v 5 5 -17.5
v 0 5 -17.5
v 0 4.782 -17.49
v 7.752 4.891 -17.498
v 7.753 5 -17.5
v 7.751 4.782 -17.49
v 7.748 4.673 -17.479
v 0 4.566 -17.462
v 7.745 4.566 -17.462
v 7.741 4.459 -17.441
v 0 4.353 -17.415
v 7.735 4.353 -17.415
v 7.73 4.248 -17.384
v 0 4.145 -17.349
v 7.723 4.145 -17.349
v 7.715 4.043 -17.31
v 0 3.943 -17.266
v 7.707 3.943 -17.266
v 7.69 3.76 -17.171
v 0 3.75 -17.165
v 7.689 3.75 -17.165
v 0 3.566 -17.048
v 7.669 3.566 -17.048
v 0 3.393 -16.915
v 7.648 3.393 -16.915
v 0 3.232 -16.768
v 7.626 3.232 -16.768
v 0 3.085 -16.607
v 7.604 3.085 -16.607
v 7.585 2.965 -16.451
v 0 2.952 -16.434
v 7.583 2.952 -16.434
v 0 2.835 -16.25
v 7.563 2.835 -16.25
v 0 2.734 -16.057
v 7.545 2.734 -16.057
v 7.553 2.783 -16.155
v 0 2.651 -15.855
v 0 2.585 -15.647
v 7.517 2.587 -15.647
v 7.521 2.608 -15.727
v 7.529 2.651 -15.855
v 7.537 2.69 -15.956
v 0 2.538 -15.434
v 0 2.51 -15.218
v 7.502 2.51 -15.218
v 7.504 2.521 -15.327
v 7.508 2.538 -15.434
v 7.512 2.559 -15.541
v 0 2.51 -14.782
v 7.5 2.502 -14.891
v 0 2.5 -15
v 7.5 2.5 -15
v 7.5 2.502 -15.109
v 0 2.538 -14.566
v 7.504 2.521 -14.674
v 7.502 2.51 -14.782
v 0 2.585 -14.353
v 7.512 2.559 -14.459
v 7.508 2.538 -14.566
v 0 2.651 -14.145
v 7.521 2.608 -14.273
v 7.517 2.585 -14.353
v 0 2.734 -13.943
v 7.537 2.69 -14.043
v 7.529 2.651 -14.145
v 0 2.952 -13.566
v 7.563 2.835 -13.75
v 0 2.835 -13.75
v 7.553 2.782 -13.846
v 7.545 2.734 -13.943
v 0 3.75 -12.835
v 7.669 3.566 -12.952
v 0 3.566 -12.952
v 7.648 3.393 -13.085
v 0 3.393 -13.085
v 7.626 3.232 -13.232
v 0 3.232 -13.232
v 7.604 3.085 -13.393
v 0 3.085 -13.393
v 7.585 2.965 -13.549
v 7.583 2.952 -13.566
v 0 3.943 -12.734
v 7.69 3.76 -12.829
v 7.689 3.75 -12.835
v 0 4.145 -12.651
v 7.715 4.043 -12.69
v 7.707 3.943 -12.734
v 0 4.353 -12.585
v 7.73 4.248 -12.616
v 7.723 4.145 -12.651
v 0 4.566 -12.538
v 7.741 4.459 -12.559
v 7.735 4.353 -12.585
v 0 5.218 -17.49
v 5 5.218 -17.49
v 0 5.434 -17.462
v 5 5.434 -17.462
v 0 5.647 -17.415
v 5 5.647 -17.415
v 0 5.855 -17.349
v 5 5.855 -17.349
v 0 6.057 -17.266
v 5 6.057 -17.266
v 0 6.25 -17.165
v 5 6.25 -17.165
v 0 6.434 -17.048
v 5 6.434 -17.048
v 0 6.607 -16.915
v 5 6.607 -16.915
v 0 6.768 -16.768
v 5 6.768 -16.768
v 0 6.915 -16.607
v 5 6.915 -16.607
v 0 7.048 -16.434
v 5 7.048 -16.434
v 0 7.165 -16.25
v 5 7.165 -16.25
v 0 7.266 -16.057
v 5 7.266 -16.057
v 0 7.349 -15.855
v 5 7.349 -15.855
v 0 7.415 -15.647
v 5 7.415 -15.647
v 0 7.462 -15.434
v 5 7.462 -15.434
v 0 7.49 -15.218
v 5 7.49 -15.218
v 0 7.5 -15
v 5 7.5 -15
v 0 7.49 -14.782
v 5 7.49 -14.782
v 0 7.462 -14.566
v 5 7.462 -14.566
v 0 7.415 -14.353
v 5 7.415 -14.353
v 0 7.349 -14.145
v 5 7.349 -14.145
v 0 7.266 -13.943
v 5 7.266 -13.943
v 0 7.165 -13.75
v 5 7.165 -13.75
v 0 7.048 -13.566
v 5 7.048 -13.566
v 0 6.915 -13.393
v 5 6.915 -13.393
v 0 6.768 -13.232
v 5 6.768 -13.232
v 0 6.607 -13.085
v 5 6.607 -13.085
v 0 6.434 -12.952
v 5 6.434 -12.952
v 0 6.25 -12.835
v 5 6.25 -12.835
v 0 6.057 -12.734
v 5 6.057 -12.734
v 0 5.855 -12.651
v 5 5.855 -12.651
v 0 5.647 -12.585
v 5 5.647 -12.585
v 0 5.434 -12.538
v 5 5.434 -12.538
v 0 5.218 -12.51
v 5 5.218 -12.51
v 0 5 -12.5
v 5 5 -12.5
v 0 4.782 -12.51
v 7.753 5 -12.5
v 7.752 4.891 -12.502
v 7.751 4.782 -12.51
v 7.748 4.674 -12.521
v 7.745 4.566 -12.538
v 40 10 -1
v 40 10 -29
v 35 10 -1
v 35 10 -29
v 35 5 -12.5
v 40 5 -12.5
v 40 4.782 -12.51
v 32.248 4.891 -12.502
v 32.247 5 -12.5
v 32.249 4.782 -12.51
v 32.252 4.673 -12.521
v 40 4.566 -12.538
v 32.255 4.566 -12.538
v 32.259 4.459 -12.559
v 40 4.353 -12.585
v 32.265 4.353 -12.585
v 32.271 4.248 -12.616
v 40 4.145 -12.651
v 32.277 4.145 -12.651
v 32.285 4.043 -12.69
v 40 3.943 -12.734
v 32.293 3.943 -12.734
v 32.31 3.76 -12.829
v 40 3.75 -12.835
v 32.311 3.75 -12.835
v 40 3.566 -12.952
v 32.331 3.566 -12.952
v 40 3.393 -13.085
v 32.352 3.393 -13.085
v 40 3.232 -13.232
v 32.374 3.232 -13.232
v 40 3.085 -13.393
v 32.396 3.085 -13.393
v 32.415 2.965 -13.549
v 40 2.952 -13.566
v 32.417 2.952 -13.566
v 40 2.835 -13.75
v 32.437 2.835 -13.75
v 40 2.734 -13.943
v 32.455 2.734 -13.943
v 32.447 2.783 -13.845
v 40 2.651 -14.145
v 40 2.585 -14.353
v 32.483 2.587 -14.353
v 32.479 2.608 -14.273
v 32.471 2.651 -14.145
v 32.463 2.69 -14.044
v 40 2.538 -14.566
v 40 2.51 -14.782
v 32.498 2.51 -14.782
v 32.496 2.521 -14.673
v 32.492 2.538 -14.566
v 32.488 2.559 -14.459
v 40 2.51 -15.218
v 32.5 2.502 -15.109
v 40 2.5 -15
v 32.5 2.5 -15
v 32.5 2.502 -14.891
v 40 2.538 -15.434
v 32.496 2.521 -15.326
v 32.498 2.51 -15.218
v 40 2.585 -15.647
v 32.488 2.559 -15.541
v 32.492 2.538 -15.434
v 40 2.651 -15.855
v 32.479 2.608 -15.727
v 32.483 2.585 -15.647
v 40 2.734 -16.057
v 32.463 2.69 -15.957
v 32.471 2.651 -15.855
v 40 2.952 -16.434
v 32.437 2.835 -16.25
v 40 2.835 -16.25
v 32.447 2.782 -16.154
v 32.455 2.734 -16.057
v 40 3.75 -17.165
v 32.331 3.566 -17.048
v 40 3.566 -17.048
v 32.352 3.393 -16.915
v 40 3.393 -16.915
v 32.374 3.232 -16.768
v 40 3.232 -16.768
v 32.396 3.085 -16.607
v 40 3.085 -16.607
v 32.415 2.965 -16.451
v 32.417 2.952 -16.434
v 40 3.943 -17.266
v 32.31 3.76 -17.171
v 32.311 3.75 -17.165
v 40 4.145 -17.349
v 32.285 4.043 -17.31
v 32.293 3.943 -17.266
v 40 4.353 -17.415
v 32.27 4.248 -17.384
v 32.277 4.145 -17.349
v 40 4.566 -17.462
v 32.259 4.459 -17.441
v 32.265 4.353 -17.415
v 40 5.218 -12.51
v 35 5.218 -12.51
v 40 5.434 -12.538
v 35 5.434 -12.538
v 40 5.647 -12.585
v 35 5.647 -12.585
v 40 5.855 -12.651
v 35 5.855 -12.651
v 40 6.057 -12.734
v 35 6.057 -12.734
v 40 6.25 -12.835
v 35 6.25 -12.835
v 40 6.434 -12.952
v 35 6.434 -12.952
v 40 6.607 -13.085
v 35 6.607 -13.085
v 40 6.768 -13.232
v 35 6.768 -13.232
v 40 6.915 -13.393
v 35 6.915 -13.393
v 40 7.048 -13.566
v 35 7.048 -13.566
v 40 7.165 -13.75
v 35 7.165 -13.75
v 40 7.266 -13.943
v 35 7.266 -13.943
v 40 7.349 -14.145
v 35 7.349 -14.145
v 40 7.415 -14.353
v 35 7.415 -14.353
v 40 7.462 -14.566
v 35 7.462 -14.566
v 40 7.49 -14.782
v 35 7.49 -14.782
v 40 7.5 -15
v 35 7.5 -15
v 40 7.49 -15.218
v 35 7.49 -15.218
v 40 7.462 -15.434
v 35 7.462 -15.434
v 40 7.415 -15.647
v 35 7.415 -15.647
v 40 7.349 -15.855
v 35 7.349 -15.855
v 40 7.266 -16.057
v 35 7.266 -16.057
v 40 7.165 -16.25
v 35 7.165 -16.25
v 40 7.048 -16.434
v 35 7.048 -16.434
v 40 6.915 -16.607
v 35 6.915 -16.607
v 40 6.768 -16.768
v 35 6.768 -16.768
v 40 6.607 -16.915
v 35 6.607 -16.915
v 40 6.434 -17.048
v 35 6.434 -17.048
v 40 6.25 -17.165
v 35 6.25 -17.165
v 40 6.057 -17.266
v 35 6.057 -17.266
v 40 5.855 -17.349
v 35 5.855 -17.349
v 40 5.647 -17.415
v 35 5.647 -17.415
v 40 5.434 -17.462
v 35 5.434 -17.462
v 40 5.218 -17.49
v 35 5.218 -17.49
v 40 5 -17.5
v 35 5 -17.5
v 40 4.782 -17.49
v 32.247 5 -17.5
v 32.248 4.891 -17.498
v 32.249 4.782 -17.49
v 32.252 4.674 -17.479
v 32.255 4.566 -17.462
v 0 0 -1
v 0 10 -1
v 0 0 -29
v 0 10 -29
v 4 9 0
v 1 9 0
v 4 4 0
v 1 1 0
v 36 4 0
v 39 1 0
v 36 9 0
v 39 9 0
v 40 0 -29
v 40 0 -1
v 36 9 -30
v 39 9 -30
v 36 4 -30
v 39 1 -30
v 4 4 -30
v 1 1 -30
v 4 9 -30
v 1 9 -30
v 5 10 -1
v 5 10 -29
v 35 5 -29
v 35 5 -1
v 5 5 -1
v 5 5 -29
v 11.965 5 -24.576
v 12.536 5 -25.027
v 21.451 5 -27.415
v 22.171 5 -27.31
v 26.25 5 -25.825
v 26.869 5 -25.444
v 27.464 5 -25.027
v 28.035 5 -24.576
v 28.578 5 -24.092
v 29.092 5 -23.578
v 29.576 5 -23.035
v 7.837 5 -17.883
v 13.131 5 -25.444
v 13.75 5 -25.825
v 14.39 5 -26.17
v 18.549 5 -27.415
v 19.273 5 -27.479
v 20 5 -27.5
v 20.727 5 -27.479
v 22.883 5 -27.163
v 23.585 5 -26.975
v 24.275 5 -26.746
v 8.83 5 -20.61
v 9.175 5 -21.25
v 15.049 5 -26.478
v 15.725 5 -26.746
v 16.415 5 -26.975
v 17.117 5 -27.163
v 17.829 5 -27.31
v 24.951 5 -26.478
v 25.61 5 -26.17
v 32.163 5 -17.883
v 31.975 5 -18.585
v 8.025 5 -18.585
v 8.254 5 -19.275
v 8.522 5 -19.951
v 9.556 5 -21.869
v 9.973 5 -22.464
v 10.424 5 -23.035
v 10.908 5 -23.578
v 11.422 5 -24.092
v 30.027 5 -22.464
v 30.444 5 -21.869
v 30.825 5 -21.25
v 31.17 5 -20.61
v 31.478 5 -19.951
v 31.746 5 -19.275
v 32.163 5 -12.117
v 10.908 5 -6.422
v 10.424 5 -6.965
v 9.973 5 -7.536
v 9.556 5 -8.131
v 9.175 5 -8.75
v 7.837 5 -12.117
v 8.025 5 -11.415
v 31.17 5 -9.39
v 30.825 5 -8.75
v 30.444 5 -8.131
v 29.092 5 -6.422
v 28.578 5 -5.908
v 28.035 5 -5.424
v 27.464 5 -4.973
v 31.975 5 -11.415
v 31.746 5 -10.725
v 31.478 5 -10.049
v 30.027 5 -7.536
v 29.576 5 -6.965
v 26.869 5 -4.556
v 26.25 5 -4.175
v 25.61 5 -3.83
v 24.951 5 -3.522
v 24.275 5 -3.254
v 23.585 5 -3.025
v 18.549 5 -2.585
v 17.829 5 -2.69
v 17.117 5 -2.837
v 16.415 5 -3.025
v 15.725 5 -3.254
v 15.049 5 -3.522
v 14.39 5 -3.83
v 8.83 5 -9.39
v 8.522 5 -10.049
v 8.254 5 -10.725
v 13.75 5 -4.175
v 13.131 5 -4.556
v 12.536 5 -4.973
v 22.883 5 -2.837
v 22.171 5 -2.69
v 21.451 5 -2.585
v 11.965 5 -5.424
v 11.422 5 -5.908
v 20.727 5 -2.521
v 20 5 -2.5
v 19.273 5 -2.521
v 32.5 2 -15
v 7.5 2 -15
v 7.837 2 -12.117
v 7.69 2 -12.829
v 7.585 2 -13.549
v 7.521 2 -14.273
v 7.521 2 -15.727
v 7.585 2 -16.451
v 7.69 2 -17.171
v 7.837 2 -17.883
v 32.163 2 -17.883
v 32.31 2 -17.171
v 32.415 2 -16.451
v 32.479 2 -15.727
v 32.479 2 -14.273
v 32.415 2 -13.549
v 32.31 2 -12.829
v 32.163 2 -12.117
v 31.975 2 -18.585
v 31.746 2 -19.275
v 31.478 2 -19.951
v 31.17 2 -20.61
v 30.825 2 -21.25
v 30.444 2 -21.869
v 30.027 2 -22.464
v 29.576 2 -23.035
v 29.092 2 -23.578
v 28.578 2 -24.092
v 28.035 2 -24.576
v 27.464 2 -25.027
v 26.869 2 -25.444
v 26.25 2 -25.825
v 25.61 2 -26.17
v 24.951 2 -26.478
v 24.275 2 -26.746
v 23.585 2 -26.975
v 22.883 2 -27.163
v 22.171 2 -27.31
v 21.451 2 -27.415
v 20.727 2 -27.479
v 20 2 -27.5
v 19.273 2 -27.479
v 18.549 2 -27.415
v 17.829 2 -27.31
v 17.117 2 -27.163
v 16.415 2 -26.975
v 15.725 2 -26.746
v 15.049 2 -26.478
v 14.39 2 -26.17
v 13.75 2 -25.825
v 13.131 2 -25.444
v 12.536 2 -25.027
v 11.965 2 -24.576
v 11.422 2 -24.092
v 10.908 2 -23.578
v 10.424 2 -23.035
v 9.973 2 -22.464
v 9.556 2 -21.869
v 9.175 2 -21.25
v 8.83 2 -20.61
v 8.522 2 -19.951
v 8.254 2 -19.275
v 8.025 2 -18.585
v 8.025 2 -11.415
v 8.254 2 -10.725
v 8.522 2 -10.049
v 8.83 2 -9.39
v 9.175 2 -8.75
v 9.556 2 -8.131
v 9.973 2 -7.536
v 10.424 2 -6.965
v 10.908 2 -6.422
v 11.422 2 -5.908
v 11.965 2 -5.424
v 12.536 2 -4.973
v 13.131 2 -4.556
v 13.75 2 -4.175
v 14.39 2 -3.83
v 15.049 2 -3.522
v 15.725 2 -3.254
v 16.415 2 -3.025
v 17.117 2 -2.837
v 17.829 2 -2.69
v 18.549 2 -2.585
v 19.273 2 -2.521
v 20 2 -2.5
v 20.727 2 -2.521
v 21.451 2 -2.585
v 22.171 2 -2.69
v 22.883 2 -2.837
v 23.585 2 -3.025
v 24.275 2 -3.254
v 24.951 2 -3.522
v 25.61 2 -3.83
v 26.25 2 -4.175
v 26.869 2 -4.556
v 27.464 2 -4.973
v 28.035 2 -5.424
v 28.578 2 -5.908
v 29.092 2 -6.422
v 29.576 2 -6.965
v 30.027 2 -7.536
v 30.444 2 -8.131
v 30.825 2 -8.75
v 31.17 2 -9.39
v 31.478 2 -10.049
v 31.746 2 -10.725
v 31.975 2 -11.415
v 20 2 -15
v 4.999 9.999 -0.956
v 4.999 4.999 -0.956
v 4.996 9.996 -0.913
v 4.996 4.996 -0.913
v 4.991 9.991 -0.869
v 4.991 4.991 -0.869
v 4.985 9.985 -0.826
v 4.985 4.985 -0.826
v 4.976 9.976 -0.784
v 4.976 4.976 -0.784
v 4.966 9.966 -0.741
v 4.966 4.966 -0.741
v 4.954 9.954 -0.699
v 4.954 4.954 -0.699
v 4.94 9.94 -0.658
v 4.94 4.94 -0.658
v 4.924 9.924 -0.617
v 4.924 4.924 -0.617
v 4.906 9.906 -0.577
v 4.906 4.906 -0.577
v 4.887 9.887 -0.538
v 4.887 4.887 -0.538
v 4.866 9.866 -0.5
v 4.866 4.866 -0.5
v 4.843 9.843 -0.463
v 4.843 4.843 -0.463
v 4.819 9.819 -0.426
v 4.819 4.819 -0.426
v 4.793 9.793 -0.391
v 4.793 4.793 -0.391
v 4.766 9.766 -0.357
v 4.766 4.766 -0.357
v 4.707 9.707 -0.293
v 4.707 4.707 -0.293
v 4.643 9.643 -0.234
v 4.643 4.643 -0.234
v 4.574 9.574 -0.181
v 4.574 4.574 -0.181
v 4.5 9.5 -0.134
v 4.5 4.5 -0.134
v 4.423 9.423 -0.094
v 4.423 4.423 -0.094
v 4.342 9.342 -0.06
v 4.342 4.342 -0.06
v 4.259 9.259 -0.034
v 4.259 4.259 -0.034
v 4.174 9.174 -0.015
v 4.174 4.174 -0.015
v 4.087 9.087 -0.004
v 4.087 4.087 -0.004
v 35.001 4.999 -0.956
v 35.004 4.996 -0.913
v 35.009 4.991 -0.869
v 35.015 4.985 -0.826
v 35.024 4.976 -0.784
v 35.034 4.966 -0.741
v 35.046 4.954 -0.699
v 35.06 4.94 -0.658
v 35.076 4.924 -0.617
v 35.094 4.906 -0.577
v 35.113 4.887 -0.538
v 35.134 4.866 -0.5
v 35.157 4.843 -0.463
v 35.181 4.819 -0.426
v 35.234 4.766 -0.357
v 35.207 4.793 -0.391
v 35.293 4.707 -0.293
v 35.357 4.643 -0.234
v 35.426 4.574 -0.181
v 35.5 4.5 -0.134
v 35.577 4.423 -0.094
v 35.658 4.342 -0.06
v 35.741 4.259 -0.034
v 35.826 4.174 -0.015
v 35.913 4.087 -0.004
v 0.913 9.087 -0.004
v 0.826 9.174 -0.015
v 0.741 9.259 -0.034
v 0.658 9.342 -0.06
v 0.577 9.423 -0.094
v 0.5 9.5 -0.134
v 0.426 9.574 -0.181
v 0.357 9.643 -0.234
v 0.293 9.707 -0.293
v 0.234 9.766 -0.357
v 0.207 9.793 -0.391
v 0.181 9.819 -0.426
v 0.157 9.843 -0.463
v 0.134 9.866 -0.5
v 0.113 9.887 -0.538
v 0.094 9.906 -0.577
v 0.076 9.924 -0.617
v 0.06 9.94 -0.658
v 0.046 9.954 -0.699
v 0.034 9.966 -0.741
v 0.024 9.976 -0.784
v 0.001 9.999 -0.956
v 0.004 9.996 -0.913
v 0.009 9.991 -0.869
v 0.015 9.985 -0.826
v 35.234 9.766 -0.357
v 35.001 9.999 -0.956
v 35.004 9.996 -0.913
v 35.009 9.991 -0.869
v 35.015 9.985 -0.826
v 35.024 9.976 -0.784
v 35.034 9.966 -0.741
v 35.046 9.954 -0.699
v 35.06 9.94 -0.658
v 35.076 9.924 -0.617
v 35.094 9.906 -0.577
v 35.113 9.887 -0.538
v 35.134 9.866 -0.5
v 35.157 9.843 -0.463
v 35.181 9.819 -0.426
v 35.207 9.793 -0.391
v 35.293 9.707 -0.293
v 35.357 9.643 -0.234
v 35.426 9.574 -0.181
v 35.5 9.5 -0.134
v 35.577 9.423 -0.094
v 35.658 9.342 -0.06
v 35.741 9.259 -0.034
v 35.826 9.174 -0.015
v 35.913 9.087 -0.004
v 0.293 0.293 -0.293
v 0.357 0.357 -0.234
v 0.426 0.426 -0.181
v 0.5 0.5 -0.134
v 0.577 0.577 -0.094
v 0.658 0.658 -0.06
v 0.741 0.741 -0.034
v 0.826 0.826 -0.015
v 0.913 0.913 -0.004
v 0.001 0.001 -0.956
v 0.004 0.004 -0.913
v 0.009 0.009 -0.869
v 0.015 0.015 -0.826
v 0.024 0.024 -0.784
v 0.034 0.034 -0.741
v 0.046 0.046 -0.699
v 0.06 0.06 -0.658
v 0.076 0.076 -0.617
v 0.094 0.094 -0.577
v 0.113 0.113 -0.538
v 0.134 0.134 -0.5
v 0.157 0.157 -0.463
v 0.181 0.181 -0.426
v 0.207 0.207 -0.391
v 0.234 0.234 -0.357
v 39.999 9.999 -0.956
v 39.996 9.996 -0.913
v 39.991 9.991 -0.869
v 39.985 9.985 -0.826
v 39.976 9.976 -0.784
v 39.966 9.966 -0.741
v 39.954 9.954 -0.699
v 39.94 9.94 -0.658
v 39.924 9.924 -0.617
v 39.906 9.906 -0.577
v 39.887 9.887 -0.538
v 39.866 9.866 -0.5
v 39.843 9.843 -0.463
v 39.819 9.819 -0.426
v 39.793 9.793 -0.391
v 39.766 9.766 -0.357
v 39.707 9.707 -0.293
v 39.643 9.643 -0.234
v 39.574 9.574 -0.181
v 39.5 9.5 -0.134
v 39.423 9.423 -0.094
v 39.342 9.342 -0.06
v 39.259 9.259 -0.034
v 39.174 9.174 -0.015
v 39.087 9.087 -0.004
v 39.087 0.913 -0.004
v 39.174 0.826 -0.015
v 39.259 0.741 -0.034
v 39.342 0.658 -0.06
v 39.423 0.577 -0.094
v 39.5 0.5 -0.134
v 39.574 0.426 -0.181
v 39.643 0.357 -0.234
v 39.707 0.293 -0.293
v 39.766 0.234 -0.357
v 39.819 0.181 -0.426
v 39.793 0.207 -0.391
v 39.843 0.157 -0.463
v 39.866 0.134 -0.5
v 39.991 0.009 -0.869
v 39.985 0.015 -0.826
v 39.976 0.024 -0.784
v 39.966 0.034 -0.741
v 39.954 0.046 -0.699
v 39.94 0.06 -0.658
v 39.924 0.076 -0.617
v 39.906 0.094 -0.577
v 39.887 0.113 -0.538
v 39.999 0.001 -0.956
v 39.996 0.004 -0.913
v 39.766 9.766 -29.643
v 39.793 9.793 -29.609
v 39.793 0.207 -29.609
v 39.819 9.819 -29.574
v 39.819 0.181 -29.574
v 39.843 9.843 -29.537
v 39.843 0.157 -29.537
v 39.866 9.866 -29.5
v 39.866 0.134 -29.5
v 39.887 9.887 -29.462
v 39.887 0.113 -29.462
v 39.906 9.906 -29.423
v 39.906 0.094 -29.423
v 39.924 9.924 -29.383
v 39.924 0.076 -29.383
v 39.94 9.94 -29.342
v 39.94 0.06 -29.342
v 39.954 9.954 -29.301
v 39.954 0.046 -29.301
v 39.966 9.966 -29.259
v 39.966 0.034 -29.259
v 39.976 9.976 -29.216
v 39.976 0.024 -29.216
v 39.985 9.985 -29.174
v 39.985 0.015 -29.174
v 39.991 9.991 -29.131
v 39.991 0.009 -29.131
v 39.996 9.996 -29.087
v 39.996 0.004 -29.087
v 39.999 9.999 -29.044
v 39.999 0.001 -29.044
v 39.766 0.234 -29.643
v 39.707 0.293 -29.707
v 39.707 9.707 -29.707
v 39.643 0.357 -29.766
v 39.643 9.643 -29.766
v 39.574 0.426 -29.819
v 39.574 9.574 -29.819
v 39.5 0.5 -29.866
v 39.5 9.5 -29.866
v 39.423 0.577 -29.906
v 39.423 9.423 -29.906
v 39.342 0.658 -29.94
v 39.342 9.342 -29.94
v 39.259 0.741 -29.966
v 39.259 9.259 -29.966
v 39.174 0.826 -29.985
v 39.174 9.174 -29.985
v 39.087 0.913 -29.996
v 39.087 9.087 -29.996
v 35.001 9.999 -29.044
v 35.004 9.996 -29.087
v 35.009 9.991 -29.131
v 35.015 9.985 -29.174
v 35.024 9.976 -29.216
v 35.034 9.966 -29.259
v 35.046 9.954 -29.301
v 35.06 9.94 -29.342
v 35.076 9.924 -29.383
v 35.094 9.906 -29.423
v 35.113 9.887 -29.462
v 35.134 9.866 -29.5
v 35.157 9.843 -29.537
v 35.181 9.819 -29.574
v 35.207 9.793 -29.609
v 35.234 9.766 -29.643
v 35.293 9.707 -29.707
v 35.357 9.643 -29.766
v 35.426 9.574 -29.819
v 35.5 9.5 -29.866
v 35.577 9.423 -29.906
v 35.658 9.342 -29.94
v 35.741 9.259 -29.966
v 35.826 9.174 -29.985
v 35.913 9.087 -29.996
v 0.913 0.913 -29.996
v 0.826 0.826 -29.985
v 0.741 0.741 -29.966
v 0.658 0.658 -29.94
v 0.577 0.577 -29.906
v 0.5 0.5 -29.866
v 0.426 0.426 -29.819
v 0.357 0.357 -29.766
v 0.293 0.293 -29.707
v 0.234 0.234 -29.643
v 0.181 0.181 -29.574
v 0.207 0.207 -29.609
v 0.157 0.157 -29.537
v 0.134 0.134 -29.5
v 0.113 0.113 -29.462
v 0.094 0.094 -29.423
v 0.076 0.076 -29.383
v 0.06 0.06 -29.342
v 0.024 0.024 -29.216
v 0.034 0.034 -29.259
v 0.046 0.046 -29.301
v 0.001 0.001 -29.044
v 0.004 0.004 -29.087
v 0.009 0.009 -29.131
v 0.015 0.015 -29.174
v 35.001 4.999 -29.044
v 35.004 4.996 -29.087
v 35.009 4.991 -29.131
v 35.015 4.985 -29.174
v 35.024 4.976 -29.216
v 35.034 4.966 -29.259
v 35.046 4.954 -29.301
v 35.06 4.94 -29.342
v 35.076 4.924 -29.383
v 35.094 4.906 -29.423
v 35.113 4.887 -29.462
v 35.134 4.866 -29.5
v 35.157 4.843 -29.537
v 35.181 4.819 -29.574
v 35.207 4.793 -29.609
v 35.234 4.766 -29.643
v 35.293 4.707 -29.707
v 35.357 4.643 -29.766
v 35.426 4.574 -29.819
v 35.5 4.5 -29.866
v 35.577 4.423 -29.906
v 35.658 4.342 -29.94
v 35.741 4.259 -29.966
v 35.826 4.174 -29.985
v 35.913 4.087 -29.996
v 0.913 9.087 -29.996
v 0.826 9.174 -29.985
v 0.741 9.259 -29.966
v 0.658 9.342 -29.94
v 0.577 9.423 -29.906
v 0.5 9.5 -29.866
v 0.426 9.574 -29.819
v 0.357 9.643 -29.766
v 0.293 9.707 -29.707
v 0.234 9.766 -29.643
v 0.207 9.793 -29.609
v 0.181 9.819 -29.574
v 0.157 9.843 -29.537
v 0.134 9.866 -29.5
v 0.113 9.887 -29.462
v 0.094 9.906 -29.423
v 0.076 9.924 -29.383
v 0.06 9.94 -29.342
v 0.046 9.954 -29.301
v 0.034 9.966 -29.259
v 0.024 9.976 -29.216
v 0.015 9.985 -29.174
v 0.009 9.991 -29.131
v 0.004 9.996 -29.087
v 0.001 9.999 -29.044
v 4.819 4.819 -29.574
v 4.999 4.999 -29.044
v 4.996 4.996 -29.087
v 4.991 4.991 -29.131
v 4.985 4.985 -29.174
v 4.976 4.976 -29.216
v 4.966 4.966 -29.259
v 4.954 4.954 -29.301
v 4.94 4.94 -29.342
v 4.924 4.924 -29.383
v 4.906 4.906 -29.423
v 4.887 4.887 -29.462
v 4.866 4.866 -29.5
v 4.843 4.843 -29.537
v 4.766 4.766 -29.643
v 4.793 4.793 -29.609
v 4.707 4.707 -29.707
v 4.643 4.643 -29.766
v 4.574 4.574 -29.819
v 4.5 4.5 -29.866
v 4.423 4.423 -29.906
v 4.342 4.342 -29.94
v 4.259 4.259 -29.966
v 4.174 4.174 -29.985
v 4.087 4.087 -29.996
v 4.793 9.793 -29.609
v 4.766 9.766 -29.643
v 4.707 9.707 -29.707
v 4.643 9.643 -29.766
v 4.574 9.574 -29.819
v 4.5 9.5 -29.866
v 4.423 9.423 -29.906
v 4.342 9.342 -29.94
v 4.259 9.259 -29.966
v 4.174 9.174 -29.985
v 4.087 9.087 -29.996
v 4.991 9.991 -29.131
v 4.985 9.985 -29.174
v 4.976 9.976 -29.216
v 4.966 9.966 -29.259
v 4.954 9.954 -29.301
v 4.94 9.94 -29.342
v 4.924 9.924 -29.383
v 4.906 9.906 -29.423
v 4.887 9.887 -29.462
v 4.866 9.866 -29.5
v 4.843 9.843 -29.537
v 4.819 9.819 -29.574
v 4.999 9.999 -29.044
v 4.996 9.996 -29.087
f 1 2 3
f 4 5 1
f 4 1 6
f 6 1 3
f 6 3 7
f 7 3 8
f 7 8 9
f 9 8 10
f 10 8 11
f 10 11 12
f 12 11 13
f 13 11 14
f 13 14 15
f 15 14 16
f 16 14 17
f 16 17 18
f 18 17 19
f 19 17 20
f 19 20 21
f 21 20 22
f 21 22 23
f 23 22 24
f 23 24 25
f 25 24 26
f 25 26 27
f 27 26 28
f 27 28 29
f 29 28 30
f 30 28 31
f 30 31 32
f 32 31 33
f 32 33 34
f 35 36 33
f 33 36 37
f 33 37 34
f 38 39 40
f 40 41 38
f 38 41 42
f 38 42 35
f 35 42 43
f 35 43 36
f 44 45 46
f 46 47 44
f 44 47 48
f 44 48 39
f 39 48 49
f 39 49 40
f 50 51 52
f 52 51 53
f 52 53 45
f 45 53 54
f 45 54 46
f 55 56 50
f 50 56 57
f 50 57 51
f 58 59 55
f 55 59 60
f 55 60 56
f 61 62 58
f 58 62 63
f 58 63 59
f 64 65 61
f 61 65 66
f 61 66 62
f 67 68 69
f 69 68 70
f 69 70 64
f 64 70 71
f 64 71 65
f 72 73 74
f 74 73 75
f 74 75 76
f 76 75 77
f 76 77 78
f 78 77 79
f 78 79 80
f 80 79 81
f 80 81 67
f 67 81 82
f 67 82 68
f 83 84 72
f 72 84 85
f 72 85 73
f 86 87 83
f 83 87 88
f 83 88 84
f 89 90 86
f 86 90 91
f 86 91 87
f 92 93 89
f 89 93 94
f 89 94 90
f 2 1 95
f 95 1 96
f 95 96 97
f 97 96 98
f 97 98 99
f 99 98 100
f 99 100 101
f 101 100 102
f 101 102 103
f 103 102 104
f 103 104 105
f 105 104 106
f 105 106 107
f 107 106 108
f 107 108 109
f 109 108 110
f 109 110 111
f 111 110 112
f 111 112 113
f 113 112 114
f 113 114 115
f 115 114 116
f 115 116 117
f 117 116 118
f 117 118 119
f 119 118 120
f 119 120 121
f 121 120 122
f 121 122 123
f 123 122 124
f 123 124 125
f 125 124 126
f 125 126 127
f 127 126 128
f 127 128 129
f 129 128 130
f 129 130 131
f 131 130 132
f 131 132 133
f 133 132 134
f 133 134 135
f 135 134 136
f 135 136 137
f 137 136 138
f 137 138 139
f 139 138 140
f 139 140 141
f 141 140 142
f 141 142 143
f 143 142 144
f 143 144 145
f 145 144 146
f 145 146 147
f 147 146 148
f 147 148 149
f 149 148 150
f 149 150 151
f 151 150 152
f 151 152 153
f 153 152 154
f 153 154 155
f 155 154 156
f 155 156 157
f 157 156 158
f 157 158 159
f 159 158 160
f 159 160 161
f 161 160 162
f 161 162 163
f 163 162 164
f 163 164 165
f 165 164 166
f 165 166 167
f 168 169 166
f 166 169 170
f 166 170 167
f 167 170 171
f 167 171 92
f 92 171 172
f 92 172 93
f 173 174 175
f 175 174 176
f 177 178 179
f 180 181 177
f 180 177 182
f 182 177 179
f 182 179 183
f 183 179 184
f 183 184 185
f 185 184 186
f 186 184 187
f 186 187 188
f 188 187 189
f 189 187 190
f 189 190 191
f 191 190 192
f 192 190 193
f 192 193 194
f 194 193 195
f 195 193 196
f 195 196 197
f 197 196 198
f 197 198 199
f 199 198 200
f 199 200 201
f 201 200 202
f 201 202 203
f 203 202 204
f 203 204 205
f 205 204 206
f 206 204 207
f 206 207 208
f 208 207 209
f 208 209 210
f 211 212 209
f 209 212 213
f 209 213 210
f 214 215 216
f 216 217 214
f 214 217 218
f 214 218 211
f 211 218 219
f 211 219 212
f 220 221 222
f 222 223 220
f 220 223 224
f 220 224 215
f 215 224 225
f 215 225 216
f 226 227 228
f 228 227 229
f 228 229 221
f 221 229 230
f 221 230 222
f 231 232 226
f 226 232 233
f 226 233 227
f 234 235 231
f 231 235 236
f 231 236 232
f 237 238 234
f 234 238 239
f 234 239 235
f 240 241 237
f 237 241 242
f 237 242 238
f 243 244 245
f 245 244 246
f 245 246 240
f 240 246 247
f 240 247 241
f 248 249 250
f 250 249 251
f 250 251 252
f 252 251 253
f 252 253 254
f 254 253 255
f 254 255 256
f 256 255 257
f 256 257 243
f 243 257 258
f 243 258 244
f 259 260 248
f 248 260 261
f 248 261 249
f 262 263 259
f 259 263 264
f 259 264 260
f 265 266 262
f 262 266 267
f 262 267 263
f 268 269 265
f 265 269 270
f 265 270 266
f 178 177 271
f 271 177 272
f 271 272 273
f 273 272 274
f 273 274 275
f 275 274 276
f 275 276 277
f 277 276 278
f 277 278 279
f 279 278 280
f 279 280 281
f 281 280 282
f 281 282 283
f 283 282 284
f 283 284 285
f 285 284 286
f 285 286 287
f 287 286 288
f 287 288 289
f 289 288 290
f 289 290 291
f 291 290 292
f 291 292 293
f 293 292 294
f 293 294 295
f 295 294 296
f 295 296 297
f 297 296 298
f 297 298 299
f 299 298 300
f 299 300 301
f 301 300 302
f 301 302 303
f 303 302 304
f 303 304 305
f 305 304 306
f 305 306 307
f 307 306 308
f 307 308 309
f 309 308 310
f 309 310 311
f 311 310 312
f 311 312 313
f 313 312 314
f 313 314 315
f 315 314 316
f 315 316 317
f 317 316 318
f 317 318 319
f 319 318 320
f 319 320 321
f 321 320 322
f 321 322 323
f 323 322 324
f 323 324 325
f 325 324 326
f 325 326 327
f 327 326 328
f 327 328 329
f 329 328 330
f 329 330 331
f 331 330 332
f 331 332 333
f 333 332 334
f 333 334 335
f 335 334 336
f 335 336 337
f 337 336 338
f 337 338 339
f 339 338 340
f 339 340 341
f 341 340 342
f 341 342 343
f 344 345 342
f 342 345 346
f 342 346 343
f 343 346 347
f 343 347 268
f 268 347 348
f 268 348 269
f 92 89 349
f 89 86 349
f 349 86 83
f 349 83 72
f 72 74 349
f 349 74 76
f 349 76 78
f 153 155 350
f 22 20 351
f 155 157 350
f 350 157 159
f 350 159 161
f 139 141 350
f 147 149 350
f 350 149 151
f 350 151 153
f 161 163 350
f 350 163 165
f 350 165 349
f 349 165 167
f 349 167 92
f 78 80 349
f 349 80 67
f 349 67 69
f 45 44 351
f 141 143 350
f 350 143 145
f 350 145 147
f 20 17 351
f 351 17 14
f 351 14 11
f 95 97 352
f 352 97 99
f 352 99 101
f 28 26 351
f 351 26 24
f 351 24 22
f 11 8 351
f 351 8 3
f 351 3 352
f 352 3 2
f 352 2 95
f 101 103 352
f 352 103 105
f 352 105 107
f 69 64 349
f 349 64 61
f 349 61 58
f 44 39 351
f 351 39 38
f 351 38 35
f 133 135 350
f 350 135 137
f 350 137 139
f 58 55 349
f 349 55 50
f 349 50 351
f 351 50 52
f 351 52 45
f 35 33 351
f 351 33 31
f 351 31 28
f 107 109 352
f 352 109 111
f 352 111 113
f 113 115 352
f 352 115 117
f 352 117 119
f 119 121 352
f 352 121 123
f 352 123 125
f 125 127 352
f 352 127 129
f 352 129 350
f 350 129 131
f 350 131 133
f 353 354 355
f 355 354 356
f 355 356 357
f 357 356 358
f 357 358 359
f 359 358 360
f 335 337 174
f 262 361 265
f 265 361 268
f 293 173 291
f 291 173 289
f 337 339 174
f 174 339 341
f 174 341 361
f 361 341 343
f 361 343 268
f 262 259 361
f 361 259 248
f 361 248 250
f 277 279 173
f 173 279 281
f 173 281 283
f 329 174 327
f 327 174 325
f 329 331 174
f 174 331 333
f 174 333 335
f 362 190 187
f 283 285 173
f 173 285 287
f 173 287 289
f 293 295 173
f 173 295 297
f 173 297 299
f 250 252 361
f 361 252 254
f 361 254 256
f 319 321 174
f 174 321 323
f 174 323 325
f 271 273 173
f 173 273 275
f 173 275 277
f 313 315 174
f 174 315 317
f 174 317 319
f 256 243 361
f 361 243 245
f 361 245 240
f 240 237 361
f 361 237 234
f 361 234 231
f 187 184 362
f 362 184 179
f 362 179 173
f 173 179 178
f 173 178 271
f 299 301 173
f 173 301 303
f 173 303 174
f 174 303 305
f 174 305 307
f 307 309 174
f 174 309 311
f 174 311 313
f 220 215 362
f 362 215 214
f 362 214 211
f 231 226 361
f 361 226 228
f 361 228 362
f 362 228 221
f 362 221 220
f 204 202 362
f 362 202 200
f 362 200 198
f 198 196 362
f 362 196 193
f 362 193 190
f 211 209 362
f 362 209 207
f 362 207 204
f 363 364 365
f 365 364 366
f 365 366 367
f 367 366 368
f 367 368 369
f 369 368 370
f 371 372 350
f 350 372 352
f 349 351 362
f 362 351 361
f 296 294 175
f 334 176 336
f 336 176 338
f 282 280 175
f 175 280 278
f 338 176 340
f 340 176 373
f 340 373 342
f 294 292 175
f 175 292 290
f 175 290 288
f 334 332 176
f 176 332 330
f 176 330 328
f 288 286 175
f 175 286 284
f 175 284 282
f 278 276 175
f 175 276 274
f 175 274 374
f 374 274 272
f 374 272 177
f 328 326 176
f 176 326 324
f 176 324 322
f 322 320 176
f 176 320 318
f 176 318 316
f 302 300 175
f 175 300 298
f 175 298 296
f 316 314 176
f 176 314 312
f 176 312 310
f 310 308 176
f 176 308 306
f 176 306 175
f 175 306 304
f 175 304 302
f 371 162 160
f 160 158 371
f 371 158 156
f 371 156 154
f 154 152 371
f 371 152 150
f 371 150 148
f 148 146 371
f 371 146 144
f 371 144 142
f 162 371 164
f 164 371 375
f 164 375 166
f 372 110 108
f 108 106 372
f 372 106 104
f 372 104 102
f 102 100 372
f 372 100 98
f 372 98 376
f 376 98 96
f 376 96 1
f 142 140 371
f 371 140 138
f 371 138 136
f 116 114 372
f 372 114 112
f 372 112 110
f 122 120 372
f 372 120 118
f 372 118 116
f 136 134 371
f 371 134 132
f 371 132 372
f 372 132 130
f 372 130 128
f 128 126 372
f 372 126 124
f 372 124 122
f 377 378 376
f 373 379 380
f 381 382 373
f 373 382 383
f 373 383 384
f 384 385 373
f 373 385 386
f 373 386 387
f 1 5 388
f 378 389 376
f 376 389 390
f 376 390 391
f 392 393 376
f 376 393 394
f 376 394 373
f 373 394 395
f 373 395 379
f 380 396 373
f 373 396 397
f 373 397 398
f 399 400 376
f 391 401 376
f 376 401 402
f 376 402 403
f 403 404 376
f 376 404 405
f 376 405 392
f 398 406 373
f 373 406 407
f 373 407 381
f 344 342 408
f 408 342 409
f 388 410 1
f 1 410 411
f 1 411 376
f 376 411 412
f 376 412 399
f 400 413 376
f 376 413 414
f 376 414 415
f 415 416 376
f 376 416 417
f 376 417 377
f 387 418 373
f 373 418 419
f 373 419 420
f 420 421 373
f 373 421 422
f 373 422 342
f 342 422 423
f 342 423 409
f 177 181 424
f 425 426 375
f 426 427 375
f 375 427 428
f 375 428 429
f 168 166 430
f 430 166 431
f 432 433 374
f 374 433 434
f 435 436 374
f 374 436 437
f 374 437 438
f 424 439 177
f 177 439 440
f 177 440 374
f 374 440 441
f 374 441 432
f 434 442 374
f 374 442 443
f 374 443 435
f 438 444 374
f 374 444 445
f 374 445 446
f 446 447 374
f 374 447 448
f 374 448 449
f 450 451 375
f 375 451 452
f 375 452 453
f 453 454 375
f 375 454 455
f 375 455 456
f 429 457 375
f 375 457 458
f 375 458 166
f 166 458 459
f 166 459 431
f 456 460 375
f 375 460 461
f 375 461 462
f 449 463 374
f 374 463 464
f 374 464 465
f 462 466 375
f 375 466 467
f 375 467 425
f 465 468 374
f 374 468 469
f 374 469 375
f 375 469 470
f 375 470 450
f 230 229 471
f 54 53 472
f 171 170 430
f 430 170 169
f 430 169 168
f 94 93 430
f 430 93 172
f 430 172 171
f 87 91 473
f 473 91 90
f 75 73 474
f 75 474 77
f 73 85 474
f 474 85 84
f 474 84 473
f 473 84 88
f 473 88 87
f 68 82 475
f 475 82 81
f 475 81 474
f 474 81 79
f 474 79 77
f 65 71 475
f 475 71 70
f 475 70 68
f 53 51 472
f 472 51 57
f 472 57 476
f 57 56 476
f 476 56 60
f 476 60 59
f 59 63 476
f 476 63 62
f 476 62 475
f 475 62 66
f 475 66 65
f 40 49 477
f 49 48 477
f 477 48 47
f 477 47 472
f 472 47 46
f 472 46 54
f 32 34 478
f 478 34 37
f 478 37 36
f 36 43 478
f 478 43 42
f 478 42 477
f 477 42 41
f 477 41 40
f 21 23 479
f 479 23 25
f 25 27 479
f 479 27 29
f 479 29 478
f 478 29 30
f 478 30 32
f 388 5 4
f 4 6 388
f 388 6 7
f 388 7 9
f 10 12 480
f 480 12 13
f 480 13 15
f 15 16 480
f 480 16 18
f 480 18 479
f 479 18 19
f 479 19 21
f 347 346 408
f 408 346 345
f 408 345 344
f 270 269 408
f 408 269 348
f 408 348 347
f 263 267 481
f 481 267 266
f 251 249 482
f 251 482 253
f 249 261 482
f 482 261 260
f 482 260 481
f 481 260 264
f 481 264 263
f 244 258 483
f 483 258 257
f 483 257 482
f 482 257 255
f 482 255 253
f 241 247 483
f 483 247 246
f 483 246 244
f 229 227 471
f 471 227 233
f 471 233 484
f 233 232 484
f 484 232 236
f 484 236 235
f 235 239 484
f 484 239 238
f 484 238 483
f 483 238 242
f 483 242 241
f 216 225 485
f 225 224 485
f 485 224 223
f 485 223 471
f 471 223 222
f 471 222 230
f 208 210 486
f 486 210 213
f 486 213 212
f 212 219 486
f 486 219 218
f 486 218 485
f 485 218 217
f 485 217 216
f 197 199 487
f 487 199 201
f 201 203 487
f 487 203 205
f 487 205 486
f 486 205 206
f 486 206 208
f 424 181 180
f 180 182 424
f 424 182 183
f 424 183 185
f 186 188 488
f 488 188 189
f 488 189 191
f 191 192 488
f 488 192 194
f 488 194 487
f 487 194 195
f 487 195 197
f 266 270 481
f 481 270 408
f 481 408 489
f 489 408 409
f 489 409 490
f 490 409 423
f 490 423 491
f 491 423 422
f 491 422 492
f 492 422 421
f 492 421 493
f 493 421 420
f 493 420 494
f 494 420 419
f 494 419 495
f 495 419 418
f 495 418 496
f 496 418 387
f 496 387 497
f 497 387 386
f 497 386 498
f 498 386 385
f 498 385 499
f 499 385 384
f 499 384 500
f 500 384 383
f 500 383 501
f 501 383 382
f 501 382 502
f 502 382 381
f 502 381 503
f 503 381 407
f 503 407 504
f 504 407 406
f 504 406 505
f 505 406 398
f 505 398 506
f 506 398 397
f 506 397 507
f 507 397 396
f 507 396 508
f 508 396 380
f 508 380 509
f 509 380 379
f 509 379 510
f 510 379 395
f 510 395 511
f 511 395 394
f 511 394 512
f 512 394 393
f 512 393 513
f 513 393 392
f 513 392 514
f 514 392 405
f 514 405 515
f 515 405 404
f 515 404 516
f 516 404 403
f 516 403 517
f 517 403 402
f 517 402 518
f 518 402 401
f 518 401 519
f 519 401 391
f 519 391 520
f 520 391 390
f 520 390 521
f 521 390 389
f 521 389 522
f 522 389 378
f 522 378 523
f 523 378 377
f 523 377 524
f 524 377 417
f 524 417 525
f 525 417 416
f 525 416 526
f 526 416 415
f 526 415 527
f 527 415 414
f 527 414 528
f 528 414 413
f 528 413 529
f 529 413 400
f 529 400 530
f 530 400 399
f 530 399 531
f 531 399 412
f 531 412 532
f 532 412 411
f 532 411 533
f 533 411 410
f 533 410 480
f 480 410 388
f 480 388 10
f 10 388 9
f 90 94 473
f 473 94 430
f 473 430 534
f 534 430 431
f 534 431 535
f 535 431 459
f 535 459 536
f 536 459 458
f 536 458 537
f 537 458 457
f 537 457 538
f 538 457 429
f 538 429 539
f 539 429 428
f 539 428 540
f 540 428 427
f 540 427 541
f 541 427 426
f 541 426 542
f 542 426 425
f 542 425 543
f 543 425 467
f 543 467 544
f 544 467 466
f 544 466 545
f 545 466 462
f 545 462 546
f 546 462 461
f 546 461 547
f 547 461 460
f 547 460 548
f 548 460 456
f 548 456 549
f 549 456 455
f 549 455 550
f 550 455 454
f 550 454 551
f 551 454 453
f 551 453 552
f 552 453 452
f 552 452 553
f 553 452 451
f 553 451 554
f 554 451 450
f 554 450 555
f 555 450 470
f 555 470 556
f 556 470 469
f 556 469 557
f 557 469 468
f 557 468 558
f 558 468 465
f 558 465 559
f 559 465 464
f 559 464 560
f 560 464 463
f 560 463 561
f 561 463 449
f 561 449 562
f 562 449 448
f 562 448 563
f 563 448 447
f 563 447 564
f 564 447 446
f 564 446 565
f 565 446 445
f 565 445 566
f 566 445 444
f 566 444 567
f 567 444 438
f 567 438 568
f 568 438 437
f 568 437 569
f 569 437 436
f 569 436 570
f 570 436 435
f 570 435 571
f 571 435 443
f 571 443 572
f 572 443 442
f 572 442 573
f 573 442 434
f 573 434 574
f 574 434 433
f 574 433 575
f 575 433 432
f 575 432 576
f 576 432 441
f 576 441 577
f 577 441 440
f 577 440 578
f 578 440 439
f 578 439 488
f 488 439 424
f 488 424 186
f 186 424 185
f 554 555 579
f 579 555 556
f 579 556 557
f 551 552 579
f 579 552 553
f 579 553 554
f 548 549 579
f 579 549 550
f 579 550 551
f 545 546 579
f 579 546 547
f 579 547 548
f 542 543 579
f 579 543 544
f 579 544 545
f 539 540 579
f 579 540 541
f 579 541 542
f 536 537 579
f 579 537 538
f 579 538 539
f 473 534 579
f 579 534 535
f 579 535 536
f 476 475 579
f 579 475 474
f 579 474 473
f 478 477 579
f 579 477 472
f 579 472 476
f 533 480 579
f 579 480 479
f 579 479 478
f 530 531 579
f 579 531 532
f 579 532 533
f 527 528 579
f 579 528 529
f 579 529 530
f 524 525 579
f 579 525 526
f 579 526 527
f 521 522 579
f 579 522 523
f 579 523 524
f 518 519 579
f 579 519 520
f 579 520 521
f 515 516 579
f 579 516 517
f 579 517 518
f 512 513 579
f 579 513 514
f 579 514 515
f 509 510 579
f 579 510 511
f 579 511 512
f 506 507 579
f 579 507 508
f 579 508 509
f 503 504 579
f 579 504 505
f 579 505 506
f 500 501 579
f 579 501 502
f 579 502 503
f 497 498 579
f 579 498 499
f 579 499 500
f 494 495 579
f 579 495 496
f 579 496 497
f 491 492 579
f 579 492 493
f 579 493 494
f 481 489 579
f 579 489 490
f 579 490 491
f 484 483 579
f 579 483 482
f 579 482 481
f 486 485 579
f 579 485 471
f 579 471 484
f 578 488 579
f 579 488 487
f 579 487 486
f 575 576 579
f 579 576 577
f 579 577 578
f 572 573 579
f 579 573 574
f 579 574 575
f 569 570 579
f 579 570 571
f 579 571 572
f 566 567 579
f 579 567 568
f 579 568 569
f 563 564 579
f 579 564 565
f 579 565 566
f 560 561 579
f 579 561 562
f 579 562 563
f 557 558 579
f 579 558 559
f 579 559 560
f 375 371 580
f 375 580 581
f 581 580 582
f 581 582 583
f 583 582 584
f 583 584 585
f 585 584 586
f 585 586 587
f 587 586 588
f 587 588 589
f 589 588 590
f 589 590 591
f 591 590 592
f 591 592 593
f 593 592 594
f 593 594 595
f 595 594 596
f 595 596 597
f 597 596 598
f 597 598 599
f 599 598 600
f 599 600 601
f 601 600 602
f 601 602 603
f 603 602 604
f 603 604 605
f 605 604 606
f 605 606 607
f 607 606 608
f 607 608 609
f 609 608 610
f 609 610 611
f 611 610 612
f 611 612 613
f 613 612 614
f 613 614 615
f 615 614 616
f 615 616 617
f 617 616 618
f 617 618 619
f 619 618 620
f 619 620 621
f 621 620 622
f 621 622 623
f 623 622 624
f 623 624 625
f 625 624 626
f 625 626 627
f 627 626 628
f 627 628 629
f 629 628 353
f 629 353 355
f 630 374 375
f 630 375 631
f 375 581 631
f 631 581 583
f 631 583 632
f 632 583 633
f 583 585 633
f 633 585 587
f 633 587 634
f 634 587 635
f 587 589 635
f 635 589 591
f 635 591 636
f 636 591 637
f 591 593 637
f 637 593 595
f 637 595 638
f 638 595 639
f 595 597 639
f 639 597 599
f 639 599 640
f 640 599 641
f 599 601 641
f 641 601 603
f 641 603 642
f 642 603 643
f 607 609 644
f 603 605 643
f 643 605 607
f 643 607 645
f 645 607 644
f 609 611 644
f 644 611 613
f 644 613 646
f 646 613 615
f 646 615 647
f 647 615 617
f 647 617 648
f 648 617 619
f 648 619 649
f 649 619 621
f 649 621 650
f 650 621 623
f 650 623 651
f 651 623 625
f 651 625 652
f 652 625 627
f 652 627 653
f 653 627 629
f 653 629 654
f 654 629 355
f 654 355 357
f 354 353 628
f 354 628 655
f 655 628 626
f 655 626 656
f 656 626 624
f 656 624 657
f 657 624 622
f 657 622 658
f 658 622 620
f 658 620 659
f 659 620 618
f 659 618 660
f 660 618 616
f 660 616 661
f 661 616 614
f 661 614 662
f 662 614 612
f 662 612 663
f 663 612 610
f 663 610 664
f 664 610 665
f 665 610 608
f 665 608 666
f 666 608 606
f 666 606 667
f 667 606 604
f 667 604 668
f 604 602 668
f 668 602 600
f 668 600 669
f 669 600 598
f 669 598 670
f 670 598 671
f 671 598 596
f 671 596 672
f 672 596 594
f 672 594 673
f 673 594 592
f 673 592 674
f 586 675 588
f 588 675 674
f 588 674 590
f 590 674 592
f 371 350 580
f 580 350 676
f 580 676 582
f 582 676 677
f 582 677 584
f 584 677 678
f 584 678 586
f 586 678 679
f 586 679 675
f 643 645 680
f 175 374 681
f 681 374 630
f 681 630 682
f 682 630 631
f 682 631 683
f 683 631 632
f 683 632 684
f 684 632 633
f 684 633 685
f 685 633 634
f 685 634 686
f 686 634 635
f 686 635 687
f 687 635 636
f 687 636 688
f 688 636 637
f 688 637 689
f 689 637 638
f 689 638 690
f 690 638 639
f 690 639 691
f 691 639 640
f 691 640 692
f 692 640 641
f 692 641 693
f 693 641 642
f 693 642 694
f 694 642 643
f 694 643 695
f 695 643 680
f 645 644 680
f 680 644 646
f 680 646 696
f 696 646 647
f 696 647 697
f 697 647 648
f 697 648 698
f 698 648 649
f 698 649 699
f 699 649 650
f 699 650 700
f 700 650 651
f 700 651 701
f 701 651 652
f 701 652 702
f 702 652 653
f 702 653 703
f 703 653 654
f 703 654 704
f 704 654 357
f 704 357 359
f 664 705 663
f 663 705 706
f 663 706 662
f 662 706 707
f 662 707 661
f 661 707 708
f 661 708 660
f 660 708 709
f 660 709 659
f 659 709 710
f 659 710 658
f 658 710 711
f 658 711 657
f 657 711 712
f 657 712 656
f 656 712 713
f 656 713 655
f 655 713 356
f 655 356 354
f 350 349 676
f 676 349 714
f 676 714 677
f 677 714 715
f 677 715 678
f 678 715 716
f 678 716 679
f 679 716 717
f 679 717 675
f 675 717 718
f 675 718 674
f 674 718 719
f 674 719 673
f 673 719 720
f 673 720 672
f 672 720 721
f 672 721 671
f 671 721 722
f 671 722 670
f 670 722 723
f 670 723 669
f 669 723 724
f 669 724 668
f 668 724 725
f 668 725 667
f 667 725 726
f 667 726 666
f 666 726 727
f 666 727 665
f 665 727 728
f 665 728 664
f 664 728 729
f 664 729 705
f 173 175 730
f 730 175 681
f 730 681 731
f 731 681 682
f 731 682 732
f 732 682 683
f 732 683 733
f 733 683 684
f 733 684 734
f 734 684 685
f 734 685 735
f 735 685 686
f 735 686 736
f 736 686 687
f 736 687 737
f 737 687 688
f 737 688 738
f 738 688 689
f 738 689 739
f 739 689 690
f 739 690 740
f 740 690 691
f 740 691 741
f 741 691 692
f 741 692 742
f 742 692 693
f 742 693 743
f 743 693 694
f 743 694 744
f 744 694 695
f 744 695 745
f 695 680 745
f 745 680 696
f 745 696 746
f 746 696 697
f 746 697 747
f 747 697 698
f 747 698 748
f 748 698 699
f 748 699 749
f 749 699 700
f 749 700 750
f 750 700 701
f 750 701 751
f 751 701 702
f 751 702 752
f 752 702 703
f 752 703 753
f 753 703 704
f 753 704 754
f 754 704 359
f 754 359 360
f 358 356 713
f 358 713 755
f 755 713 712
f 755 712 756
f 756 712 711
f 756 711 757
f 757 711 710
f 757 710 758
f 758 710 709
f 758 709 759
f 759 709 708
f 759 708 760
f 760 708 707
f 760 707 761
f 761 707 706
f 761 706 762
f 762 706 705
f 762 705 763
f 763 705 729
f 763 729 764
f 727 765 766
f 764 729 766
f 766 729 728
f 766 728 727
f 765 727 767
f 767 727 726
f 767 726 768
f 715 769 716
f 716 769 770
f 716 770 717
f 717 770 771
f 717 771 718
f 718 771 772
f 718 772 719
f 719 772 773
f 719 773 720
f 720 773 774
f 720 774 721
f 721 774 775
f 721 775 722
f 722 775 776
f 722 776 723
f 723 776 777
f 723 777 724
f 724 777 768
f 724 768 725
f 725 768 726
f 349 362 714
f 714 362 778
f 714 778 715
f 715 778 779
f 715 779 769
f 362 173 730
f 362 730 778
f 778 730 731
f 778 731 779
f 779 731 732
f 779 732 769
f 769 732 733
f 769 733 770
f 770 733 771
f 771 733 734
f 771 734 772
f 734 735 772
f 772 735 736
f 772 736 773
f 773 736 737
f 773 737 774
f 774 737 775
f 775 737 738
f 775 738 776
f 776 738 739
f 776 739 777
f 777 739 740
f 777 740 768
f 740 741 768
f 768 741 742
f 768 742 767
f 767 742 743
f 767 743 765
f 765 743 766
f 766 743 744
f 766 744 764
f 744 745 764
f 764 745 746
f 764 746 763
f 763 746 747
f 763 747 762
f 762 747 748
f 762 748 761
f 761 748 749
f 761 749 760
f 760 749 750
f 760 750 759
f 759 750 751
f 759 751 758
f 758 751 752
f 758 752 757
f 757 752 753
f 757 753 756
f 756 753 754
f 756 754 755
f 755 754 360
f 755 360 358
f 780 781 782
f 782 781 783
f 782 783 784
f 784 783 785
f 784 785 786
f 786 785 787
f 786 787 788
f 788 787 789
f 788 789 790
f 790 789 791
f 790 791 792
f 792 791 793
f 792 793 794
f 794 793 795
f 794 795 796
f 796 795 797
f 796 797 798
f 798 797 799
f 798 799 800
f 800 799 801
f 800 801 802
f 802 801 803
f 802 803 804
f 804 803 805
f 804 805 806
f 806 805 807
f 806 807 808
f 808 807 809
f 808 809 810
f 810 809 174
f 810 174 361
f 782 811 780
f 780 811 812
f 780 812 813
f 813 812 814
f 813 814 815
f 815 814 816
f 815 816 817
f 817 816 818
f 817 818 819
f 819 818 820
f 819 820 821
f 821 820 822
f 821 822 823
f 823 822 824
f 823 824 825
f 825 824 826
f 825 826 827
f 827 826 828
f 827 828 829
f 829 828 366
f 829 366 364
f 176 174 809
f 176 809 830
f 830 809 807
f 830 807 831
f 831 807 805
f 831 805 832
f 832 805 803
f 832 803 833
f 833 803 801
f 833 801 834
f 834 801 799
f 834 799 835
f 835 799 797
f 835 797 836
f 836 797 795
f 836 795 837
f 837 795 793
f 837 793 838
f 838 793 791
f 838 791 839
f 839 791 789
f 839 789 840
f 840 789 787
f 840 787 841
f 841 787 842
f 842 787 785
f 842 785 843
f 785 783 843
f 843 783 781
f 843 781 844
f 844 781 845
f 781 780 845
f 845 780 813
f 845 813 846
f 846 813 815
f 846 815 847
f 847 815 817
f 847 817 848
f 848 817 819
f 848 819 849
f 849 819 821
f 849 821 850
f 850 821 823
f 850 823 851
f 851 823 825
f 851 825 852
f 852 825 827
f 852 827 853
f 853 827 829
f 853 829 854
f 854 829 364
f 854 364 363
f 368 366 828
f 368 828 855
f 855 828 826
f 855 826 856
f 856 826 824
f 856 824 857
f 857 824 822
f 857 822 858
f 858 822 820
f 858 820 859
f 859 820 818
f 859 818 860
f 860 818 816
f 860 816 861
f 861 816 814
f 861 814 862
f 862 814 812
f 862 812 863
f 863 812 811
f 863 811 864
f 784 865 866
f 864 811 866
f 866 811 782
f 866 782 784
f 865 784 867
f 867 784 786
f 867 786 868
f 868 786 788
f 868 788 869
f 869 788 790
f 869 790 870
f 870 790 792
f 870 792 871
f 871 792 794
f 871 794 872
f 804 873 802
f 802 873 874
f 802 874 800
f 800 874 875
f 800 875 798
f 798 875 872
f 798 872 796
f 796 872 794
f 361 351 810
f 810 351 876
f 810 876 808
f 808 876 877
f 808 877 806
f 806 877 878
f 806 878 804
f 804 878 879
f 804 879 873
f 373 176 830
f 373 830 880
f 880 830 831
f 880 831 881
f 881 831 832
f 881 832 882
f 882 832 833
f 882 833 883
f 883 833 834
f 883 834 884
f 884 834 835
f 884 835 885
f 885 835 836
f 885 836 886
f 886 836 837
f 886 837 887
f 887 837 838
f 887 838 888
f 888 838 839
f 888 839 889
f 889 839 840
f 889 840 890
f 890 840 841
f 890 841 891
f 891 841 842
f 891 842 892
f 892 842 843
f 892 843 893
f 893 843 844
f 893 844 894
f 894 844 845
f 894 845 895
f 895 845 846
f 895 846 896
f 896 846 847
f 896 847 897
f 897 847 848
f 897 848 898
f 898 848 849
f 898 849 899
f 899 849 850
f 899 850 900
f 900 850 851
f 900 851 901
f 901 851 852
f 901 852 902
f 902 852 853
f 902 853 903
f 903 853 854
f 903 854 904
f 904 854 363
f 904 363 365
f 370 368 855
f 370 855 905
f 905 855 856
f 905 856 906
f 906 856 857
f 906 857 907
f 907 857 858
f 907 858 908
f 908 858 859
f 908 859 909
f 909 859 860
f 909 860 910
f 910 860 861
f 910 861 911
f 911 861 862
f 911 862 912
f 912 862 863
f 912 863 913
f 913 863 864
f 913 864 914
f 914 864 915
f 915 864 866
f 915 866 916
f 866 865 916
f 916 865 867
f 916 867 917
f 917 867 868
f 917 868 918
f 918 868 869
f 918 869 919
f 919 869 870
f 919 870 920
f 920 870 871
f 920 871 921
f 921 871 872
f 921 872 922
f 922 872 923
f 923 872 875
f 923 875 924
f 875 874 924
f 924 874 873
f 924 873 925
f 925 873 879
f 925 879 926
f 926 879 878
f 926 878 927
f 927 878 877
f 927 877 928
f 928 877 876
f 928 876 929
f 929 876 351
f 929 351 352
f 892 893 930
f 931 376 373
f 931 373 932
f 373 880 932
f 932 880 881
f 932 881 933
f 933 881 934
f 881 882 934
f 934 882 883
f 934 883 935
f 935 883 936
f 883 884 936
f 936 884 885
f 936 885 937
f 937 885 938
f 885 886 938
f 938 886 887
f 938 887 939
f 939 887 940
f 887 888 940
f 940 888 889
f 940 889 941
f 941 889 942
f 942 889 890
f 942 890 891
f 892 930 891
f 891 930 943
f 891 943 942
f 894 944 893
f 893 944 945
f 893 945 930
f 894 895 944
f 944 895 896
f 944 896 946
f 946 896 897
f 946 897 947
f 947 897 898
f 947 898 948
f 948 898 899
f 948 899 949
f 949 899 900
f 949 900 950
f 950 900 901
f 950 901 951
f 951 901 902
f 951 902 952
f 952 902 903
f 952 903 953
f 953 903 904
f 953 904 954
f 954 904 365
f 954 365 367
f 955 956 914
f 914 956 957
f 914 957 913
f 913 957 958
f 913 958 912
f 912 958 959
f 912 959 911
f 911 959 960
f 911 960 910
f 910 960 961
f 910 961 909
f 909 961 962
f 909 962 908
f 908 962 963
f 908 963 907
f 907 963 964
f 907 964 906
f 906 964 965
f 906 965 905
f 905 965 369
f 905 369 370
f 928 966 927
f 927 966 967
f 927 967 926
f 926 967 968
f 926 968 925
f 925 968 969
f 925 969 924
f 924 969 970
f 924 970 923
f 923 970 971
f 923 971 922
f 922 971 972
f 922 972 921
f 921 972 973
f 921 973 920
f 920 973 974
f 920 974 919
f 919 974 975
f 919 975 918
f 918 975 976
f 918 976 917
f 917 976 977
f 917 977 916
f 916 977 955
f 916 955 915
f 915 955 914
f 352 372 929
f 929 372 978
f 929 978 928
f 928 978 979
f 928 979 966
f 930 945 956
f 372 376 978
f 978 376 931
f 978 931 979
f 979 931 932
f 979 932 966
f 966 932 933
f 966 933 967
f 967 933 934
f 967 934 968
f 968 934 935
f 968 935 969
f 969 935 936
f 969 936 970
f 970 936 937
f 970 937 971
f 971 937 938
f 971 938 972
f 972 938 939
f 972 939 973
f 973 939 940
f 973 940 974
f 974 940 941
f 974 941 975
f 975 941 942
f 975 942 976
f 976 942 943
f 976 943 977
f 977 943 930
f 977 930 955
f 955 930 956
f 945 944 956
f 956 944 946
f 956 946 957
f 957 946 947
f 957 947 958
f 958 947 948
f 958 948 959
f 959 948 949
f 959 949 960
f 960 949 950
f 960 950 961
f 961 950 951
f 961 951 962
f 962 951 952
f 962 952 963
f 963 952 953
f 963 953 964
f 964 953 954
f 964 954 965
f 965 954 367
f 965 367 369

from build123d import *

# Parameters (mm, degrees)
SKETCH_1_W          = 40
SKETCH_1_H          = 30
EXTRUDE_1_DEPTH     = 10
SKETCH_3_R          = 2.5
CUT_EXTRUDE_1_DEPTH = 51.990195136
CUT_EXTRUDE_2_DEPTH = 5
SKETCH_5_R          = 12.5
CUT_EXTRUDE_3_DEPTH = 3
FILLET_1_R          = 1


with BuildPart() as part:
    # 草图1 → 凸台-拉伸1 (new body)
    with BuildSketch(Plane(origin=(0, 0, 0), x_dir=(1, 0, 0), z_dir=(0, 1, 0))):
        with Locations((20, 15)):
            Rectangle(SKETCH_1_W, SKETCH_1_H)
    extrude(amount=EXTRUDE_1_DEPTH)

    # 草图3 → 切除-拉伸1 (cut, through all)
    with BuildSketch(Plane.ZY):
        with Locations((-15, 5)):
            Circle(SKETCH_3_R)
    extrude(amount=-CUT_EXTRUDE_1_DEPTH, mode=Mode.SUBTRACT)

    # 草图4 → 切除-拉伸2 (cut)
    with BuildSketch(Plane(origin=(0, 10, 0), x_dir=(1, 0, 0), z_dir=(0, 1, 0))):
        Polygon((20, 30), (5, 30), (5, 0), (35, 0), (35, 30), align=None)
    extrude(amount=-CUT_EXTRUDE_2_DEPTH, mode=Mode.SUBTRACT)

    # 草图5 → 切除-拉伸3 (cut)
    with BuildSketch(Plane(origin=(0, 5, 0), x_dir=(1, 0, 0), z_dir=(0, 1, 0))):
        with Locations(Location((20, 15, 0), (0, 0, 270))):
            Circle(SKETCH_5_R)
    extrude(amount=-CUT_EXTRUDE_3_DEPTH, mode=Mode.SUBTRACT)

    # 圆角1
    fillet_1_edges = [part.edges().sort_by_distance(p)[0] for p in [
        (37.5, 10, -30),
        (37.5, 10, 0),
        (2.5, 10, -30),
        (35, 7.5, -30),
        (5, 7.5, 0),
        (20, 5, 0),
        (35, 7.5, 0),
        (20, 5, -30),
        (5, 7.5, -30),
        (20, 0, -30),
        (20, 0, 0),
        (2.5, 10, 0),
        (0, 5, -30),
        (40, 5, -30),
        (40, 5, 0),
        (0, 5, 0),
    ]]
    fillet(fillet_1_edges, radius=FILLET_1_R)


solid = part.part
